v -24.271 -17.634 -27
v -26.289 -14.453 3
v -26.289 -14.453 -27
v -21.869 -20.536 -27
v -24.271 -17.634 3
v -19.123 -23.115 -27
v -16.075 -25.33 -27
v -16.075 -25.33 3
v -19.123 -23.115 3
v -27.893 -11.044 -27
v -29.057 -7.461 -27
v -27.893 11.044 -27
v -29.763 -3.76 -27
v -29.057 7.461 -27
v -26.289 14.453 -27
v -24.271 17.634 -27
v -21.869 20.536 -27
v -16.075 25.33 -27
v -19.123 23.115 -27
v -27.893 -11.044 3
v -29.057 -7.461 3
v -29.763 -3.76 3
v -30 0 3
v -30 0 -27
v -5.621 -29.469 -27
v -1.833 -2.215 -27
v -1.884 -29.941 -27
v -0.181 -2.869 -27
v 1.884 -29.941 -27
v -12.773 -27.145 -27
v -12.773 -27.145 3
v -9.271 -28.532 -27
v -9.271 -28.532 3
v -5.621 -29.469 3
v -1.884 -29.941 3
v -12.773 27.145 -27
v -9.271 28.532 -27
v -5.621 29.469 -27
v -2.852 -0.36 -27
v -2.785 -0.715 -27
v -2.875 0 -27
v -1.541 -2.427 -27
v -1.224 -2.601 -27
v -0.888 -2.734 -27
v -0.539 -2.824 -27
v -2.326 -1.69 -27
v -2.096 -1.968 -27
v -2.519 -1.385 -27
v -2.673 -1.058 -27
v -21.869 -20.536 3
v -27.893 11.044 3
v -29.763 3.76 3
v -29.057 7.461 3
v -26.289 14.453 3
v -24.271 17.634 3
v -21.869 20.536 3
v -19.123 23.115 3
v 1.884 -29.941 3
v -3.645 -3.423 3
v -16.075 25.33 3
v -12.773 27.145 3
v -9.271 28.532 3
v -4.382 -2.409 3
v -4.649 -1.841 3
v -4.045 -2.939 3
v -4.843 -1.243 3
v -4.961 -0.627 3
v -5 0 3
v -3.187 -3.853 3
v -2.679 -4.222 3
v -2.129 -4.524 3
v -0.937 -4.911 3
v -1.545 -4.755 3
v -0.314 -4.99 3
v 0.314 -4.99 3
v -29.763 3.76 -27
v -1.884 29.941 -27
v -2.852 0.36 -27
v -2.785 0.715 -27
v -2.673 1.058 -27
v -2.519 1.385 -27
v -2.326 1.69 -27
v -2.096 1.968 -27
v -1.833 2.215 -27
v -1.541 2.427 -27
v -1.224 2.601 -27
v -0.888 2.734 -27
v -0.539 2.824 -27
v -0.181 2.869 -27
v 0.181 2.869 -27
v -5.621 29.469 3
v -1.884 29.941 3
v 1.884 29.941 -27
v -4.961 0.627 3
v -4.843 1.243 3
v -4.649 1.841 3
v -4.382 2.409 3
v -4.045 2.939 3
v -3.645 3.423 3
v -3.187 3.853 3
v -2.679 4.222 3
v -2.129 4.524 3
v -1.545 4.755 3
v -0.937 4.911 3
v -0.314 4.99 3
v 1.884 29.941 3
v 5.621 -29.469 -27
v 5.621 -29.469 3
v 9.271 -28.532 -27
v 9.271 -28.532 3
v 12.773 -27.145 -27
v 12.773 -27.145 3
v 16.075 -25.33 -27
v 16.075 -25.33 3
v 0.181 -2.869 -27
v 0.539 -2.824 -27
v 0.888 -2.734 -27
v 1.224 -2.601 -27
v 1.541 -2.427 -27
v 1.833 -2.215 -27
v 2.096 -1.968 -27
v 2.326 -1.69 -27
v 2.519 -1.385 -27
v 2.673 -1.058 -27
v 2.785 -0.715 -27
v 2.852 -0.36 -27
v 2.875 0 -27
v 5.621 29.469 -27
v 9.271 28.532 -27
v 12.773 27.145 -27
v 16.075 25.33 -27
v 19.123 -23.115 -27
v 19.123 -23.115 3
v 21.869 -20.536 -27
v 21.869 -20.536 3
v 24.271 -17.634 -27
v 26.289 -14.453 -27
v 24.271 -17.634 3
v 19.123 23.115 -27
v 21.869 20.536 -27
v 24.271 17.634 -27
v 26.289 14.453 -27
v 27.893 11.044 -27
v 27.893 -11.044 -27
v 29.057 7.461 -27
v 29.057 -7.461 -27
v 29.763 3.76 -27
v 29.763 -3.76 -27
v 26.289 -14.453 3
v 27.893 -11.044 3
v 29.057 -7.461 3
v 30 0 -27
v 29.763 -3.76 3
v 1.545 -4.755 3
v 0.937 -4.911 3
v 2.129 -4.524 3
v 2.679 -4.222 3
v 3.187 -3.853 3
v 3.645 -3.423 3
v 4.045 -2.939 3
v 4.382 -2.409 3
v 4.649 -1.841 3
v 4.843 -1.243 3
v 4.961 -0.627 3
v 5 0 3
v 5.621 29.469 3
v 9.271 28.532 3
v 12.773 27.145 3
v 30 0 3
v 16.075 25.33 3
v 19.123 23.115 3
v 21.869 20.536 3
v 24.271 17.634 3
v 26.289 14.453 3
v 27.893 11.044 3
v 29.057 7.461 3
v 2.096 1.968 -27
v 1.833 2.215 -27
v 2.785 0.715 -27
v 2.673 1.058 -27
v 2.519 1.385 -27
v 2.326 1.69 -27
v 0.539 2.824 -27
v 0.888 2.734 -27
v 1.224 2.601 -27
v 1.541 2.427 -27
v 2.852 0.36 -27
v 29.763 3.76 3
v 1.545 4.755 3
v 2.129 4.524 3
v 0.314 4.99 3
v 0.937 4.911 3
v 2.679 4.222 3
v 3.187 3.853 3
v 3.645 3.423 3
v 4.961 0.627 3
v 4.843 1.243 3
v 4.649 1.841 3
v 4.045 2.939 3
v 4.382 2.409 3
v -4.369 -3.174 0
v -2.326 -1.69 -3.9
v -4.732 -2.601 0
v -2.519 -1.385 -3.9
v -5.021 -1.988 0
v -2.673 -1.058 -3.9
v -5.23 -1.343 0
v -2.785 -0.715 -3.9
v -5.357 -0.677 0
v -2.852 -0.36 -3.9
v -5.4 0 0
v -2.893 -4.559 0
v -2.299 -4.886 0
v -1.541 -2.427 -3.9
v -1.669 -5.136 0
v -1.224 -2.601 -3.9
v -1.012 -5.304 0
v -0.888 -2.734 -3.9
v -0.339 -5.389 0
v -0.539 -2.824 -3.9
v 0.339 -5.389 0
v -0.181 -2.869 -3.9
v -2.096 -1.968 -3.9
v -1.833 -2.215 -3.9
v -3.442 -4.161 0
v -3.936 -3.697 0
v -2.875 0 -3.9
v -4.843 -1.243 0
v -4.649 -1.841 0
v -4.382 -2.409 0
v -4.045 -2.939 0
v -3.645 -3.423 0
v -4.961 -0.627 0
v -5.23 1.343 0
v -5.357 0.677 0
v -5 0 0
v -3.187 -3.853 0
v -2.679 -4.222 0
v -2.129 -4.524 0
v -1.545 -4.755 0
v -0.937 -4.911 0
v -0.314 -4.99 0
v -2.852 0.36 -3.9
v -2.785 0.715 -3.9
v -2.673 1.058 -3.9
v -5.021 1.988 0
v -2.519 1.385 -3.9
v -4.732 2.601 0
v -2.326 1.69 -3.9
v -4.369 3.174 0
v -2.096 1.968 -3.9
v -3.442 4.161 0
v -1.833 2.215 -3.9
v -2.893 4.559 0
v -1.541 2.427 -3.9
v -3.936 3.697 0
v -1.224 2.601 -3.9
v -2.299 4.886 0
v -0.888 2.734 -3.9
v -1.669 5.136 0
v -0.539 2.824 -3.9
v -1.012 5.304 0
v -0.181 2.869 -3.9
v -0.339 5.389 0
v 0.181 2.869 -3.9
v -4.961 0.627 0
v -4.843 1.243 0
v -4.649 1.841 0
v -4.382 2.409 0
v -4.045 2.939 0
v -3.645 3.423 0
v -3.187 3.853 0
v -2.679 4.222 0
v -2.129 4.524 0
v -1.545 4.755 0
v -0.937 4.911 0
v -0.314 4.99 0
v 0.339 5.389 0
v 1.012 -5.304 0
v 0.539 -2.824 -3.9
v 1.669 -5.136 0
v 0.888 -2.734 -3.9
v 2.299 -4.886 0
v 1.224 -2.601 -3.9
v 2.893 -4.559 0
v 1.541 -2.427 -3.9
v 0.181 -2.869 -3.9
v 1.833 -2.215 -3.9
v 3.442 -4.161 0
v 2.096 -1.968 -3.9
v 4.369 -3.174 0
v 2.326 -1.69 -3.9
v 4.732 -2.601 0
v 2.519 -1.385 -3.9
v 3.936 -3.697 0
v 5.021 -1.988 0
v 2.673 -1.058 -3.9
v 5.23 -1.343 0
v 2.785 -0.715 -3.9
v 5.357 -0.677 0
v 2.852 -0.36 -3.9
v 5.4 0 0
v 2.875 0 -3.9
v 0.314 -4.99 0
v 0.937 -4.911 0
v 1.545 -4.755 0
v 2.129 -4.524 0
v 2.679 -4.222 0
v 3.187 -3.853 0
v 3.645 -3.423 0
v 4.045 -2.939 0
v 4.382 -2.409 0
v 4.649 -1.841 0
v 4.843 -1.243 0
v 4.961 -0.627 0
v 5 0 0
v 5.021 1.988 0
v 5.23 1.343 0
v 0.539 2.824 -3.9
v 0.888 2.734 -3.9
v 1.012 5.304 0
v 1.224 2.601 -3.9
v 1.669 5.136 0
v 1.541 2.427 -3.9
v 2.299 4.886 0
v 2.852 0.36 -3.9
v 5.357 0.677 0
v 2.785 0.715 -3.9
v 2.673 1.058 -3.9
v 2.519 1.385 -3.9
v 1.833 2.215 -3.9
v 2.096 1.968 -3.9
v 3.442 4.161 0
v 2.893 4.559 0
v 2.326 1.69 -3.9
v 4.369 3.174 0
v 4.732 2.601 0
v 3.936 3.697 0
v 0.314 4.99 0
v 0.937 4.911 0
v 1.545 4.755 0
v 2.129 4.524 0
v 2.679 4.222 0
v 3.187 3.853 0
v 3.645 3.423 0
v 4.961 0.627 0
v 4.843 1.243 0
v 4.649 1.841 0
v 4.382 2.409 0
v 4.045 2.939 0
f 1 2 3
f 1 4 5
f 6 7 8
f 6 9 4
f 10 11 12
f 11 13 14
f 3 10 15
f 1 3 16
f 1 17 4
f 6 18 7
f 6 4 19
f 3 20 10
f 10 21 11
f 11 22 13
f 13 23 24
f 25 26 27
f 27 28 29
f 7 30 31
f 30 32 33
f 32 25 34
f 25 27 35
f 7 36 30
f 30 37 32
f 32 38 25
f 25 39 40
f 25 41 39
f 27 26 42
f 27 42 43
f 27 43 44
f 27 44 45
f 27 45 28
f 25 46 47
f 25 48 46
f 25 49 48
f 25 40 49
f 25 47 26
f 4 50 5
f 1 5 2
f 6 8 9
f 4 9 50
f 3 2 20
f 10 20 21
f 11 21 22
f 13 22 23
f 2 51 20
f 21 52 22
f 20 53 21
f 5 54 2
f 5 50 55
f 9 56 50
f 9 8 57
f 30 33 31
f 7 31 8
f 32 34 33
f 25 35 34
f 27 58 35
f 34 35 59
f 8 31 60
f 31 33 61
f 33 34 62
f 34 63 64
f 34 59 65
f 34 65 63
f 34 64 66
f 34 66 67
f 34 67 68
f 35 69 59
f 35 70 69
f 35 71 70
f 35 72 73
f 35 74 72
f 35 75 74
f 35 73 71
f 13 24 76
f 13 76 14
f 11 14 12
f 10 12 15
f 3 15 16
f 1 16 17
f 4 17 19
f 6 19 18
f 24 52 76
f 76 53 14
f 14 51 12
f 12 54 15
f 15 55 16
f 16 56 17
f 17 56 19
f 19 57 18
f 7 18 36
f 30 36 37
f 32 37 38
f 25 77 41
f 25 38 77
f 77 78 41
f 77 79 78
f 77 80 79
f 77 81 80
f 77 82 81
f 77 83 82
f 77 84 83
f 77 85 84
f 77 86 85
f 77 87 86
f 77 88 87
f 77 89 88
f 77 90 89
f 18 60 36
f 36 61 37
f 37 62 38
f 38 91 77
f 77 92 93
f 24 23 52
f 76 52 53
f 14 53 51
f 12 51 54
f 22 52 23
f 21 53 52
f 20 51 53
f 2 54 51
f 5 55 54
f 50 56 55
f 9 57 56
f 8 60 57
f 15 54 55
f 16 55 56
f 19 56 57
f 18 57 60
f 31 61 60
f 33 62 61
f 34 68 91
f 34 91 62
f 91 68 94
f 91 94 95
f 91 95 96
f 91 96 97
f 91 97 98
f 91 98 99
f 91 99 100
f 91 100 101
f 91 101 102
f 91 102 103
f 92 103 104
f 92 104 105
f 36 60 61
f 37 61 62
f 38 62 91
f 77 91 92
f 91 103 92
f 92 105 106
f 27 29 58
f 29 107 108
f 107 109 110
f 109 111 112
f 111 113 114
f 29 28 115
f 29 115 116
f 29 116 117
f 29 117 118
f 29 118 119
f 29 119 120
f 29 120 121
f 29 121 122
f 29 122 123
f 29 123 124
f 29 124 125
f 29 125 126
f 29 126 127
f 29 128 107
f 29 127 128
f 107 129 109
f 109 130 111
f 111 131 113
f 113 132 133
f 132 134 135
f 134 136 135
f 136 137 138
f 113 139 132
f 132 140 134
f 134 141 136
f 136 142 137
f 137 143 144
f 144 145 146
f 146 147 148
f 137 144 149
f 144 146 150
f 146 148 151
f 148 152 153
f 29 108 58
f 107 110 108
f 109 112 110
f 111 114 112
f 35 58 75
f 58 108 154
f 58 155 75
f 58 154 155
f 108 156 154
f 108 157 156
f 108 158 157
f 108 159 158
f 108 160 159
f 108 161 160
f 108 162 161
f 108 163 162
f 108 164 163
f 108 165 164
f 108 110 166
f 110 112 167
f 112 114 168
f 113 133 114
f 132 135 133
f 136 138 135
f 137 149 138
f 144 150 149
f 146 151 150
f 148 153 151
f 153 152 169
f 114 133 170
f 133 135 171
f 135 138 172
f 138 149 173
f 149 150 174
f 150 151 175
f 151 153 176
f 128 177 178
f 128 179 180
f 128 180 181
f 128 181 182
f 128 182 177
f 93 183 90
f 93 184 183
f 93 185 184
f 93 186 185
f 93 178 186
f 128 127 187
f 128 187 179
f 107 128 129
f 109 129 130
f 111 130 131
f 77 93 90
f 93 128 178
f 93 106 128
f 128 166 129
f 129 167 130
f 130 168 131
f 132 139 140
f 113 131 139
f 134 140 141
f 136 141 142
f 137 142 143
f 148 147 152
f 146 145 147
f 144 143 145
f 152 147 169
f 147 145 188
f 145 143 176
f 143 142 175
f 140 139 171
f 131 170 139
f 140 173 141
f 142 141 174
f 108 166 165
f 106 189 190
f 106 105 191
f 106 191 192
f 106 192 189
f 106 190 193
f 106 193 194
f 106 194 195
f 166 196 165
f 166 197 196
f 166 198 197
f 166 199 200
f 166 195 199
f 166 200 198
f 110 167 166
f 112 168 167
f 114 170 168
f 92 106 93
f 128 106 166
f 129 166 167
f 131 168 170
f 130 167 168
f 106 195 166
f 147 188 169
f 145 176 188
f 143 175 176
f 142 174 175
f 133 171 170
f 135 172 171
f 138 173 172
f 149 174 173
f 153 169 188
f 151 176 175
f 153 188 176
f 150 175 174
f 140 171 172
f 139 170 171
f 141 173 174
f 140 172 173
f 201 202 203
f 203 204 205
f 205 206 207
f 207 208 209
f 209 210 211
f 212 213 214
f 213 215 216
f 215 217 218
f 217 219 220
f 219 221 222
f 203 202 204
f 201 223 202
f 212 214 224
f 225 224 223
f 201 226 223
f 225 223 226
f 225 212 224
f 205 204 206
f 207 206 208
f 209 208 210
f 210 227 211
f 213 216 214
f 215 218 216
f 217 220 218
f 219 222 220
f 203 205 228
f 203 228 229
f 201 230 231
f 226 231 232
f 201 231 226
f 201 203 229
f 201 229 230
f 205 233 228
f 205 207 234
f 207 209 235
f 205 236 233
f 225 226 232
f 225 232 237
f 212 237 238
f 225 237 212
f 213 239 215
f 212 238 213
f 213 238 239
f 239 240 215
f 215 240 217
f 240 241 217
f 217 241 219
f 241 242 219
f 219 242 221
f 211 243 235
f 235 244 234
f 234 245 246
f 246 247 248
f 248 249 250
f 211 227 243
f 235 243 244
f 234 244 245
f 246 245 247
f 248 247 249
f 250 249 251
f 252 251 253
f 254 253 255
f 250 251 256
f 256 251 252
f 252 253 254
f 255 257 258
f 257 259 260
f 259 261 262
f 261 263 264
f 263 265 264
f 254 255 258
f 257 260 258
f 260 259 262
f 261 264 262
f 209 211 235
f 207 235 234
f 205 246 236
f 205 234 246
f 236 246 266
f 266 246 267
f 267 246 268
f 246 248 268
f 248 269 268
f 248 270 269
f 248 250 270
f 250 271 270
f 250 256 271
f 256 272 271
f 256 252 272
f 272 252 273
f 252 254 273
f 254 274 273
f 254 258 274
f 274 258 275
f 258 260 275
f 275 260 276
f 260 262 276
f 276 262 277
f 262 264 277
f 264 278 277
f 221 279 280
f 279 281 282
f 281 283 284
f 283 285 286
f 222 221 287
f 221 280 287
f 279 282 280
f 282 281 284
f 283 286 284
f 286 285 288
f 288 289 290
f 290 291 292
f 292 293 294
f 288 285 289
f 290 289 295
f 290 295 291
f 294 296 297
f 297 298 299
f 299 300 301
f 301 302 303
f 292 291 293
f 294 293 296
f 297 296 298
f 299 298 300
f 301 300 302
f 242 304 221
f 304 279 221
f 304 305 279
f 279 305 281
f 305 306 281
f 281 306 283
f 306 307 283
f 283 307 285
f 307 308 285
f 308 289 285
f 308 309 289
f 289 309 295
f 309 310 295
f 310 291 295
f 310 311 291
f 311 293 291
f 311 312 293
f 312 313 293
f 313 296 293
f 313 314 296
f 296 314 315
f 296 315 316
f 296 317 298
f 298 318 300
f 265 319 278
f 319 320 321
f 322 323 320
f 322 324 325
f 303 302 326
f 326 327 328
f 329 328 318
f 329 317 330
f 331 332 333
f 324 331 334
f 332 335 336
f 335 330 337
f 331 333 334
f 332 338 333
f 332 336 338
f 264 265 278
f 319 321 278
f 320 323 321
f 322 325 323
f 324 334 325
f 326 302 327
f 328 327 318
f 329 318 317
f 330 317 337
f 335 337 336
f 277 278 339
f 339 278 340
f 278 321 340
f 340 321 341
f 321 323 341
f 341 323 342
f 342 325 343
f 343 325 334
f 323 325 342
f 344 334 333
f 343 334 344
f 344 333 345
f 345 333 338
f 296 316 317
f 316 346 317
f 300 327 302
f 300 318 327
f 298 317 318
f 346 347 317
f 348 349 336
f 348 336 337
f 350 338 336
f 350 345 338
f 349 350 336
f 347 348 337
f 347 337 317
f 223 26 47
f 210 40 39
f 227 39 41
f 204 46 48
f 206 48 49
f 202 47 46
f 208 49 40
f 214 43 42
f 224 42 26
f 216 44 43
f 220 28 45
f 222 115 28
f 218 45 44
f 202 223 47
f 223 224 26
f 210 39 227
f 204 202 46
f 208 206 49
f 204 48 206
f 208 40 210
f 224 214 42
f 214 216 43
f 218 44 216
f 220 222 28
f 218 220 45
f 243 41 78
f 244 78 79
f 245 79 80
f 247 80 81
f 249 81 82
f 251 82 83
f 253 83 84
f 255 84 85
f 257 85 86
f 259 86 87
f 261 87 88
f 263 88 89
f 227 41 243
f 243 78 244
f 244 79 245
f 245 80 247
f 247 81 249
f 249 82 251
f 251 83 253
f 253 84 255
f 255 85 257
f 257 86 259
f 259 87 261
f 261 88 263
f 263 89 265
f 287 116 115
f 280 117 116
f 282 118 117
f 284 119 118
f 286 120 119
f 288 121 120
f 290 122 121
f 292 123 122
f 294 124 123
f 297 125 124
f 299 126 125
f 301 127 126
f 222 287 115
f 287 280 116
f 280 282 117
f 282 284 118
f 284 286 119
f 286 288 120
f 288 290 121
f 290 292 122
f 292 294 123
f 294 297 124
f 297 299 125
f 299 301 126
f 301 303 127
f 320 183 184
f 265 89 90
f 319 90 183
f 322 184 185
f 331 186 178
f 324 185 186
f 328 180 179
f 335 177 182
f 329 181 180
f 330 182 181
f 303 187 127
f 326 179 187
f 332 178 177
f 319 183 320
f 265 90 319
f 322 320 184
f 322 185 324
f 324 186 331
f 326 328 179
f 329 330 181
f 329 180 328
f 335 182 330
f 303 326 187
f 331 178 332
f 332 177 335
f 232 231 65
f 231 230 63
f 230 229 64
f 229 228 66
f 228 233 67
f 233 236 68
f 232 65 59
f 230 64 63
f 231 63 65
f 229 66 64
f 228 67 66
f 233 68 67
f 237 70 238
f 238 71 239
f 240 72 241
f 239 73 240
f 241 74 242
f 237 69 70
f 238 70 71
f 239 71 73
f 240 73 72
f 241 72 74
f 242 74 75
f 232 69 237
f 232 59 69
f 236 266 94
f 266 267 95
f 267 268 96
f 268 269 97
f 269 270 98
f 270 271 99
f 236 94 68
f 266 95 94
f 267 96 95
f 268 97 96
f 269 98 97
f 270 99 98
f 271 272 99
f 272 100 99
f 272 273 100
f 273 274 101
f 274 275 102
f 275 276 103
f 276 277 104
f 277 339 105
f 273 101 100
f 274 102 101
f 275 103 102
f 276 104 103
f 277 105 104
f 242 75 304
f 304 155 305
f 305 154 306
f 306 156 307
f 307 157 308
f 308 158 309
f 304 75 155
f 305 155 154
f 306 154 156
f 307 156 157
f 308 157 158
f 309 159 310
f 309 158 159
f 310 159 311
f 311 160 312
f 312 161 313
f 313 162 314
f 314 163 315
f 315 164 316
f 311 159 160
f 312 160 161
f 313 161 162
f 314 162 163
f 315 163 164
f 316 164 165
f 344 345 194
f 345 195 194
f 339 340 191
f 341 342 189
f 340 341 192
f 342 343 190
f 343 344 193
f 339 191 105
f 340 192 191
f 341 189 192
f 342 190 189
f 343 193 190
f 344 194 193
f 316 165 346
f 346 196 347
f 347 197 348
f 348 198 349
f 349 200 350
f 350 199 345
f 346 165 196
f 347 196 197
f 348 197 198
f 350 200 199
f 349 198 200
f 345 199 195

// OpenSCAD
$fn = 50;

difference() {
	union() {
		translate(v = [0, 0, -27.0]) {
			cylinder(h = 30, r = 30.0);
		}
		#translate(v = [0, 0, -30.0]) {
			cylinder(h = 30, r = 2.875);
		}
	}
	union() {
		translate(v = [0, 0, 0]) {
			rotate(a = [0, 0, 0]) {
				difference() {
					union() {
						translate(v = [0, 0, -30.0]) {
							cylinder(h = 30, r = 2.6);
						}
						translate(v = [0, 0, -3.9]) {
							cylinder(h = 3.9, r1 = 2.875, r2 = 5.4);
						}
						translate(v = [0, 0, -30.0]) {
							cylinder(h = 30, r = 2.875);
						}
						translate(v = [0, 0, -30.0]) {
							cylinder(h = 30, r = 2.6);
						}
					}
					union();
				}
			}
		}
		#cylinder(h = 3, r = 5.0);
	}
}
